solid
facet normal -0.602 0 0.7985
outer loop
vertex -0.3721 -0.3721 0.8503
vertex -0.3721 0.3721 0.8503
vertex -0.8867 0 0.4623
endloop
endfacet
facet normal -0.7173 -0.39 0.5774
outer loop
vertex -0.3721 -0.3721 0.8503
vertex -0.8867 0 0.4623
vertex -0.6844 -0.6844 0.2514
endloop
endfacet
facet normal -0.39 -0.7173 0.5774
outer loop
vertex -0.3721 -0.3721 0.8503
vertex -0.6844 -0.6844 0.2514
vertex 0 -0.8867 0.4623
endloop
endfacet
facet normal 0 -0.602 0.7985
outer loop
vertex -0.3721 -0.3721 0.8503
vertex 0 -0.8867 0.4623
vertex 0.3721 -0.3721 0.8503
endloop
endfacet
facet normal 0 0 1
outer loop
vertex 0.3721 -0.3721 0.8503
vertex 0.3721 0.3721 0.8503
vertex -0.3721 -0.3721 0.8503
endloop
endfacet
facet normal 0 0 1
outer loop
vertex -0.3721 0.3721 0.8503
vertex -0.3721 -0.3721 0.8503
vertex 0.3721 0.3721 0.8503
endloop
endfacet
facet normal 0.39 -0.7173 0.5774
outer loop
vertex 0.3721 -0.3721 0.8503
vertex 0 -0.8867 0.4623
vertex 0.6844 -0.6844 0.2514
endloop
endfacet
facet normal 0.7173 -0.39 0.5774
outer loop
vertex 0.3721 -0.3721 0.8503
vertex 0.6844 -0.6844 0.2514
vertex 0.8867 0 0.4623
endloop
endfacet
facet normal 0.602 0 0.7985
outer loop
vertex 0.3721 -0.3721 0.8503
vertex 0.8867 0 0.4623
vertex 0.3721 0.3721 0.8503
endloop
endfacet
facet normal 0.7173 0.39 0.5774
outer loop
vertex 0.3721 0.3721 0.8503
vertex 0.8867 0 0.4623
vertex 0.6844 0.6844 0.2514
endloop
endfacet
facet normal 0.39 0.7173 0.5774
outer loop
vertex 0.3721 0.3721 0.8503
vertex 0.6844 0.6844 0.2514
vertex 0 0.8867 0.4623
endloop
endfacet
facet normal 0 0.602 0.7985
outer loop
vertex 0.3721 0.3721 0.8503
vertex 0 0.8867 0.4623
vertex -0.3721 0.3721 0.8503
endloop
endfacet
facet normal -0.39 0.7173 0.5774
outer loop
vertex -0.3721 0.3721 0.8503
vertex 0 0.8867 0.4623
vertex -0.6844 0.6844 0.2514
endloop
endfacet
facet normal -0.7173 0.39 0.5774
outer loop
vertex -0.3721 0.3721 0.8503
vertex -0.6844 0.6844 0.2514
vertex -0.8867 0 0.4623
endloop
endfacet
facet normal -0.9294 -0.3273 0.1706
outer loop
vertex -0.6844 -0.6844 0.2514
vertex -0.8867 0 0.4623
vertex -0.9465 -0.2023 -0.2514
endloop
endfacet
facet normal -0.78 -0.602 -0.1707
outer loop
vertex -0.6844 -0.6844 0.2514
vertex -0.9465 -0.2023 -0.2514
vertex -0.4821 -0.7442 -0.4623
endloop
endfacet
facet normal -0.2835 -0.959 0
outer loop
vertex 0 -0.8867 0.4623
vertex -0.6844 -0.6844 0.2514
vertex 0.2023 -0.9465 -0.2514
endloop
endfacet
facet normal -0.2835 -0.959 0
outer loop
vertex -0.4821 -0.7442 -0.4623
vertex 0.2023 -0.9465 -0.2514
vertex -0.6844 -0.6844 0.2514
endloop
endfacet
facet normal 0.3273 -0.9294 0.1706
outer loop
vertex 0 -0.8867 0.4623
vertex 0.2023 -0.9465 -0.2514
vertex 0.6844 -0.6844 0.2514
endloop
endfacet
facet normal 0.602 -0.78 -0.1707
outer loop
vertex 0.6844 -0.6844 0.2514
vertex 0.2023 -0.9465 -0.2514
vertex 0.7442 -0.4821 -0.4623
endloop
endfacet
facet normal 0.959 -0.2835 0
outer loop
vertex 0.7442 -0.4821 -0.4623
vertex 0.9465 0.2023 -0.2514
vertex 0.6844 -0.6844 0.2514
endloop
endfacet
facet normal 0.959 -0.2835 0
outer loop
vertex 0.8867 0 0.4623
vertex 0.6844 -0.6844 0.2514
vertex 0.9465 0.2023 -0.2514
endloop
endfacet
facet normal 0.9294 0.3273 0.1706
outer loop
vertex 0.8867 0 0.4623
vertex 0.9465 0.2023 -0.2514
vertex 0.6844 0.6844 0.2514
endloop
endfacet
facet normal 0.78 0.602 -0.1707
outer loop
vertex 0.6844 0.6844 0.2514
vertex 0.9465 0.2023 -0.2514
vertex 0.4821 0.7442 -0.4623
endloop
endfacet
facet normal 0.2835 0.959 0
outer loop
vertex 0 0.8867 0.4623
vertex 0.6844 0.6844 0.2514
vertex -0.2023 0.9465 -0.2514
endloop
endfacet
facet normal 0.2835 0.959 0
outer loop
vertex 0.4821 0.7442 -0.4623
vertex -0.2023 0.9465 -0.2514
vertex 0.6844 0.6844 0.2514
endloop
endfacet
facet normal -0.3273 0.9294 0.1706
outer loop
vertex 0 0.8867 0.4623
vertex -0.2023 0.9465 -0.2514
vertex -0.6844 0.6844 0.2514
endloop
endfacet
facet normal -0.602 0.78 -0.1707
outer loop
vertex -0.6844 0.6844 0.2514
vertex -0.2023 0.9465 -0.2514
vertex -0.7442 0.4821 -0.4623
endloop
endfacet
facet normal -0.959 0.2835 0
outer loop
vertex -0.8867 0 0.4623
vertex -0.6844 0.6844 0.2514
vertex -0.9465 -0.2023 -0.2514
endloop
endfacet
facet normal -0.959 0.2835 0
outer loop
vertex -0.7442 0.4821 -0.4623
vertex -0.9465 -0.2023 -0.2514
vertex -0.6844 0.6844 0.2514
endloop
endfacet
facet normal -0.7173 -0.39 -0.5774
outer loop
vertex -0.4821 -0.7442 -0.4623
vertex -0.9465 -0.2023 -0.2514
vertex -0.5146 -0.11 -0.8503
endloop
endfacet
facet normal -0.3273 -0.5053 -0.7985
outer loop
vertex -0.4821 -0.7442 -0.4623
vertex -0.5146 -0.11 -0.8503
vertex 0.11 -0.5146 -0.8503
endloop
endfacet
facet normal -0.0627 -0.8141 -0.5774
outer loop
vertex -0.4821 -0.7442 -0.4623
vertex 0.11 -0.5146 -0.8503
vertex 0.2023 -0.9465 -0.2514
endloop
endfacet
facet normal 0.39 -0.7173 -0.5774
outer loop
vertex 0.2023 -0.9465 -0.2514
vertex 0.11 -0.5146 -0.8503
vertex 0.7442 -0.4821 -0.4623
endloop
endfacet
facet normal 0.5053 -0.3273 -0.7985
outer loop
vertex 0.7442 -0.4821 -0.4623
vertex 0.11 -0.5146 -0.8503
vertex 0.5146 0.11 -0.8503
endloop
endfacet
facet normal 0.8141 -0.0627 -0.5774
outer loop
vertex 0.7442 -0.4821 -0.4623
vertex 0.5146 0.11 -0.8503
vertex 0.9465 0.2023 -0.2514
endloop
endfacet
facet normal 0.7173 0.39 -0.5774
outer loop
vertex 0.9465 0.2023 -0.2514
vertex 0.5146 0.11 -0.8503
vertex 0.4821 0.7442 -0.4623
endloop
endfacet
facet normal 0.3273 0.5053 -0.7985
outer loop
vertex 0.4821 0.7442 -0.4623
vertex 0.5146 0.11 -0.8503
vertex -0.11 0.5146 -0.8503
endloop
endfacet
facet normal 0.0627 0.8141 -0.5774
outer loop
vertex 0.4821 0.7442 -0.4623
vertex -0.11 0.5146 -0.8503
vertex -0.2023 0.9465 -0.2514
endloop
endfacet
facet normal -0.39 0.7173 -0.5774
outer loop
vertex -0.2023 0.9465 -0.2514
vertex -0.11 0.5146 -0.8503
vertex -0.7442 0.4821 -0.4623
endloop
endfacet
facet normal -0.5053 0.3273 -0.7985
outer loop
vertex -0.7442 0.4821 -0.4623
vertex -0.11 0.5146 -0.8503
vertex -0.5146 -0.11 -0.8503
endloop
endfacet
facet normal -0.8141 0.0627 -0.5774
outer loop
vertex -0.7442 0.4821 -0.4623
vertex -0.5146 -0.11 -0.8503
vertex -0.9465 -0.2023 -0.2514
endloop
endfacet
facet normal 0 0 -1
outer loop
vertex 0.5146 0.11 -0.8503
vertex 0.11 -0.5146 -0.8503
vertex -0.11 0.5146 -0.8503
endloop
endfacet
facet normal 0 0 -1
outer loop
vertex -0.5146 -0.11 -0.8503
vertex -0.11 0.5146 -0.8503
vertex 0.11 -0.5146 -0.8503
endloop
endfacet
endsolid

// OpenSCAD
polyhedron( points = [[-0.37210282767674, -0.372102751205706, 0.850339428944546], [0.372102837442201, -0.372102751205706, 0.850339428944546], [0.372102837475616, 0.372102913913235, 0.850339428944546], [-0.372102827643328, 0.372102913980058, 0.850339428944546], [-0.684403820529203, -0.68440374389258, 0.251358417608013], [4.84414935977988e-09, -0.886711944255454, 0.462320186568933], [0.684403830235603, -0.684403744096104, 0.251358417744963], [0.886712030508656, 8.12920796074247e-08, 0.462320186568933], [0.684403830380031, 0.684403906692617, 0.251358417744963], [5.00093259936264e-09, 0.886712106996397, 0.462320186568933], [-0.684403820384777, 0.684403906777947, 0.251358417608012], [-0.886712020755991, 8.14488621447083e-08, 0.462320186534092], [-0.482095602976866, -0.744205525020581, -0.462320224313332], [0.202308222389038, -0.946513725381254, -0.251358455465622], [0.744205809651776, -0.482095585135847, -0.46232022428253], [0.946514009912817, 0.202308240211717, -0.251358455489318], [0.482095527233905, 0.744205497315775, -0.46232031920658], [-0.202308239135224, 0.946513680176357, -0.251358516980993], [-0.744206143513632, 0.482095862603611, -0.46232018126355], [-0.946514058584088, -0.202308226439056, -0.251358408275452], [0.109992748281039, -0.514608715101951, -0.850339245921914], [0.514610052544521, 0.109992685002215, -0.850339992630083], [-0.109992939705104, 0.514607470564033, -0.850338642226416], [-0.514609444995329, -0.109992635240662, -0.850339466669233]], faces = [[0, 3, 11], [0, 11, 4], [0, 4, 5], [0, 5, 1], [0, 1, 2, 3], [1, 5, 6], [1, 6, 7], [1, 7, 2], [2, 7, 8], [2, 8, 9], [2, 9, 3], [3, 9, 10], [3, 10, 11], [4, 11, 19], [4, 19, 12], [4, 12, 13, 5], [5, 13, 6], [6, 13, 14], [6, 14, 15, 7], [7, 15, 8], [8, 15, 16], [8, 16, 17, 9], [9, 17, 10], [10, 17, 18], [10, 18, 19, 11], [12, 19, 23], [12, 23, 20], [12, 20, 13], [13, 20, 14], [14, 20, 21], [14, 21, 15], [15, 21, 16], [16, 21, 22], [16, 22, 17], [17, 22, 18], [18, 22, 23], [18, 23, 19], [20, 23, 22, 21]]);
